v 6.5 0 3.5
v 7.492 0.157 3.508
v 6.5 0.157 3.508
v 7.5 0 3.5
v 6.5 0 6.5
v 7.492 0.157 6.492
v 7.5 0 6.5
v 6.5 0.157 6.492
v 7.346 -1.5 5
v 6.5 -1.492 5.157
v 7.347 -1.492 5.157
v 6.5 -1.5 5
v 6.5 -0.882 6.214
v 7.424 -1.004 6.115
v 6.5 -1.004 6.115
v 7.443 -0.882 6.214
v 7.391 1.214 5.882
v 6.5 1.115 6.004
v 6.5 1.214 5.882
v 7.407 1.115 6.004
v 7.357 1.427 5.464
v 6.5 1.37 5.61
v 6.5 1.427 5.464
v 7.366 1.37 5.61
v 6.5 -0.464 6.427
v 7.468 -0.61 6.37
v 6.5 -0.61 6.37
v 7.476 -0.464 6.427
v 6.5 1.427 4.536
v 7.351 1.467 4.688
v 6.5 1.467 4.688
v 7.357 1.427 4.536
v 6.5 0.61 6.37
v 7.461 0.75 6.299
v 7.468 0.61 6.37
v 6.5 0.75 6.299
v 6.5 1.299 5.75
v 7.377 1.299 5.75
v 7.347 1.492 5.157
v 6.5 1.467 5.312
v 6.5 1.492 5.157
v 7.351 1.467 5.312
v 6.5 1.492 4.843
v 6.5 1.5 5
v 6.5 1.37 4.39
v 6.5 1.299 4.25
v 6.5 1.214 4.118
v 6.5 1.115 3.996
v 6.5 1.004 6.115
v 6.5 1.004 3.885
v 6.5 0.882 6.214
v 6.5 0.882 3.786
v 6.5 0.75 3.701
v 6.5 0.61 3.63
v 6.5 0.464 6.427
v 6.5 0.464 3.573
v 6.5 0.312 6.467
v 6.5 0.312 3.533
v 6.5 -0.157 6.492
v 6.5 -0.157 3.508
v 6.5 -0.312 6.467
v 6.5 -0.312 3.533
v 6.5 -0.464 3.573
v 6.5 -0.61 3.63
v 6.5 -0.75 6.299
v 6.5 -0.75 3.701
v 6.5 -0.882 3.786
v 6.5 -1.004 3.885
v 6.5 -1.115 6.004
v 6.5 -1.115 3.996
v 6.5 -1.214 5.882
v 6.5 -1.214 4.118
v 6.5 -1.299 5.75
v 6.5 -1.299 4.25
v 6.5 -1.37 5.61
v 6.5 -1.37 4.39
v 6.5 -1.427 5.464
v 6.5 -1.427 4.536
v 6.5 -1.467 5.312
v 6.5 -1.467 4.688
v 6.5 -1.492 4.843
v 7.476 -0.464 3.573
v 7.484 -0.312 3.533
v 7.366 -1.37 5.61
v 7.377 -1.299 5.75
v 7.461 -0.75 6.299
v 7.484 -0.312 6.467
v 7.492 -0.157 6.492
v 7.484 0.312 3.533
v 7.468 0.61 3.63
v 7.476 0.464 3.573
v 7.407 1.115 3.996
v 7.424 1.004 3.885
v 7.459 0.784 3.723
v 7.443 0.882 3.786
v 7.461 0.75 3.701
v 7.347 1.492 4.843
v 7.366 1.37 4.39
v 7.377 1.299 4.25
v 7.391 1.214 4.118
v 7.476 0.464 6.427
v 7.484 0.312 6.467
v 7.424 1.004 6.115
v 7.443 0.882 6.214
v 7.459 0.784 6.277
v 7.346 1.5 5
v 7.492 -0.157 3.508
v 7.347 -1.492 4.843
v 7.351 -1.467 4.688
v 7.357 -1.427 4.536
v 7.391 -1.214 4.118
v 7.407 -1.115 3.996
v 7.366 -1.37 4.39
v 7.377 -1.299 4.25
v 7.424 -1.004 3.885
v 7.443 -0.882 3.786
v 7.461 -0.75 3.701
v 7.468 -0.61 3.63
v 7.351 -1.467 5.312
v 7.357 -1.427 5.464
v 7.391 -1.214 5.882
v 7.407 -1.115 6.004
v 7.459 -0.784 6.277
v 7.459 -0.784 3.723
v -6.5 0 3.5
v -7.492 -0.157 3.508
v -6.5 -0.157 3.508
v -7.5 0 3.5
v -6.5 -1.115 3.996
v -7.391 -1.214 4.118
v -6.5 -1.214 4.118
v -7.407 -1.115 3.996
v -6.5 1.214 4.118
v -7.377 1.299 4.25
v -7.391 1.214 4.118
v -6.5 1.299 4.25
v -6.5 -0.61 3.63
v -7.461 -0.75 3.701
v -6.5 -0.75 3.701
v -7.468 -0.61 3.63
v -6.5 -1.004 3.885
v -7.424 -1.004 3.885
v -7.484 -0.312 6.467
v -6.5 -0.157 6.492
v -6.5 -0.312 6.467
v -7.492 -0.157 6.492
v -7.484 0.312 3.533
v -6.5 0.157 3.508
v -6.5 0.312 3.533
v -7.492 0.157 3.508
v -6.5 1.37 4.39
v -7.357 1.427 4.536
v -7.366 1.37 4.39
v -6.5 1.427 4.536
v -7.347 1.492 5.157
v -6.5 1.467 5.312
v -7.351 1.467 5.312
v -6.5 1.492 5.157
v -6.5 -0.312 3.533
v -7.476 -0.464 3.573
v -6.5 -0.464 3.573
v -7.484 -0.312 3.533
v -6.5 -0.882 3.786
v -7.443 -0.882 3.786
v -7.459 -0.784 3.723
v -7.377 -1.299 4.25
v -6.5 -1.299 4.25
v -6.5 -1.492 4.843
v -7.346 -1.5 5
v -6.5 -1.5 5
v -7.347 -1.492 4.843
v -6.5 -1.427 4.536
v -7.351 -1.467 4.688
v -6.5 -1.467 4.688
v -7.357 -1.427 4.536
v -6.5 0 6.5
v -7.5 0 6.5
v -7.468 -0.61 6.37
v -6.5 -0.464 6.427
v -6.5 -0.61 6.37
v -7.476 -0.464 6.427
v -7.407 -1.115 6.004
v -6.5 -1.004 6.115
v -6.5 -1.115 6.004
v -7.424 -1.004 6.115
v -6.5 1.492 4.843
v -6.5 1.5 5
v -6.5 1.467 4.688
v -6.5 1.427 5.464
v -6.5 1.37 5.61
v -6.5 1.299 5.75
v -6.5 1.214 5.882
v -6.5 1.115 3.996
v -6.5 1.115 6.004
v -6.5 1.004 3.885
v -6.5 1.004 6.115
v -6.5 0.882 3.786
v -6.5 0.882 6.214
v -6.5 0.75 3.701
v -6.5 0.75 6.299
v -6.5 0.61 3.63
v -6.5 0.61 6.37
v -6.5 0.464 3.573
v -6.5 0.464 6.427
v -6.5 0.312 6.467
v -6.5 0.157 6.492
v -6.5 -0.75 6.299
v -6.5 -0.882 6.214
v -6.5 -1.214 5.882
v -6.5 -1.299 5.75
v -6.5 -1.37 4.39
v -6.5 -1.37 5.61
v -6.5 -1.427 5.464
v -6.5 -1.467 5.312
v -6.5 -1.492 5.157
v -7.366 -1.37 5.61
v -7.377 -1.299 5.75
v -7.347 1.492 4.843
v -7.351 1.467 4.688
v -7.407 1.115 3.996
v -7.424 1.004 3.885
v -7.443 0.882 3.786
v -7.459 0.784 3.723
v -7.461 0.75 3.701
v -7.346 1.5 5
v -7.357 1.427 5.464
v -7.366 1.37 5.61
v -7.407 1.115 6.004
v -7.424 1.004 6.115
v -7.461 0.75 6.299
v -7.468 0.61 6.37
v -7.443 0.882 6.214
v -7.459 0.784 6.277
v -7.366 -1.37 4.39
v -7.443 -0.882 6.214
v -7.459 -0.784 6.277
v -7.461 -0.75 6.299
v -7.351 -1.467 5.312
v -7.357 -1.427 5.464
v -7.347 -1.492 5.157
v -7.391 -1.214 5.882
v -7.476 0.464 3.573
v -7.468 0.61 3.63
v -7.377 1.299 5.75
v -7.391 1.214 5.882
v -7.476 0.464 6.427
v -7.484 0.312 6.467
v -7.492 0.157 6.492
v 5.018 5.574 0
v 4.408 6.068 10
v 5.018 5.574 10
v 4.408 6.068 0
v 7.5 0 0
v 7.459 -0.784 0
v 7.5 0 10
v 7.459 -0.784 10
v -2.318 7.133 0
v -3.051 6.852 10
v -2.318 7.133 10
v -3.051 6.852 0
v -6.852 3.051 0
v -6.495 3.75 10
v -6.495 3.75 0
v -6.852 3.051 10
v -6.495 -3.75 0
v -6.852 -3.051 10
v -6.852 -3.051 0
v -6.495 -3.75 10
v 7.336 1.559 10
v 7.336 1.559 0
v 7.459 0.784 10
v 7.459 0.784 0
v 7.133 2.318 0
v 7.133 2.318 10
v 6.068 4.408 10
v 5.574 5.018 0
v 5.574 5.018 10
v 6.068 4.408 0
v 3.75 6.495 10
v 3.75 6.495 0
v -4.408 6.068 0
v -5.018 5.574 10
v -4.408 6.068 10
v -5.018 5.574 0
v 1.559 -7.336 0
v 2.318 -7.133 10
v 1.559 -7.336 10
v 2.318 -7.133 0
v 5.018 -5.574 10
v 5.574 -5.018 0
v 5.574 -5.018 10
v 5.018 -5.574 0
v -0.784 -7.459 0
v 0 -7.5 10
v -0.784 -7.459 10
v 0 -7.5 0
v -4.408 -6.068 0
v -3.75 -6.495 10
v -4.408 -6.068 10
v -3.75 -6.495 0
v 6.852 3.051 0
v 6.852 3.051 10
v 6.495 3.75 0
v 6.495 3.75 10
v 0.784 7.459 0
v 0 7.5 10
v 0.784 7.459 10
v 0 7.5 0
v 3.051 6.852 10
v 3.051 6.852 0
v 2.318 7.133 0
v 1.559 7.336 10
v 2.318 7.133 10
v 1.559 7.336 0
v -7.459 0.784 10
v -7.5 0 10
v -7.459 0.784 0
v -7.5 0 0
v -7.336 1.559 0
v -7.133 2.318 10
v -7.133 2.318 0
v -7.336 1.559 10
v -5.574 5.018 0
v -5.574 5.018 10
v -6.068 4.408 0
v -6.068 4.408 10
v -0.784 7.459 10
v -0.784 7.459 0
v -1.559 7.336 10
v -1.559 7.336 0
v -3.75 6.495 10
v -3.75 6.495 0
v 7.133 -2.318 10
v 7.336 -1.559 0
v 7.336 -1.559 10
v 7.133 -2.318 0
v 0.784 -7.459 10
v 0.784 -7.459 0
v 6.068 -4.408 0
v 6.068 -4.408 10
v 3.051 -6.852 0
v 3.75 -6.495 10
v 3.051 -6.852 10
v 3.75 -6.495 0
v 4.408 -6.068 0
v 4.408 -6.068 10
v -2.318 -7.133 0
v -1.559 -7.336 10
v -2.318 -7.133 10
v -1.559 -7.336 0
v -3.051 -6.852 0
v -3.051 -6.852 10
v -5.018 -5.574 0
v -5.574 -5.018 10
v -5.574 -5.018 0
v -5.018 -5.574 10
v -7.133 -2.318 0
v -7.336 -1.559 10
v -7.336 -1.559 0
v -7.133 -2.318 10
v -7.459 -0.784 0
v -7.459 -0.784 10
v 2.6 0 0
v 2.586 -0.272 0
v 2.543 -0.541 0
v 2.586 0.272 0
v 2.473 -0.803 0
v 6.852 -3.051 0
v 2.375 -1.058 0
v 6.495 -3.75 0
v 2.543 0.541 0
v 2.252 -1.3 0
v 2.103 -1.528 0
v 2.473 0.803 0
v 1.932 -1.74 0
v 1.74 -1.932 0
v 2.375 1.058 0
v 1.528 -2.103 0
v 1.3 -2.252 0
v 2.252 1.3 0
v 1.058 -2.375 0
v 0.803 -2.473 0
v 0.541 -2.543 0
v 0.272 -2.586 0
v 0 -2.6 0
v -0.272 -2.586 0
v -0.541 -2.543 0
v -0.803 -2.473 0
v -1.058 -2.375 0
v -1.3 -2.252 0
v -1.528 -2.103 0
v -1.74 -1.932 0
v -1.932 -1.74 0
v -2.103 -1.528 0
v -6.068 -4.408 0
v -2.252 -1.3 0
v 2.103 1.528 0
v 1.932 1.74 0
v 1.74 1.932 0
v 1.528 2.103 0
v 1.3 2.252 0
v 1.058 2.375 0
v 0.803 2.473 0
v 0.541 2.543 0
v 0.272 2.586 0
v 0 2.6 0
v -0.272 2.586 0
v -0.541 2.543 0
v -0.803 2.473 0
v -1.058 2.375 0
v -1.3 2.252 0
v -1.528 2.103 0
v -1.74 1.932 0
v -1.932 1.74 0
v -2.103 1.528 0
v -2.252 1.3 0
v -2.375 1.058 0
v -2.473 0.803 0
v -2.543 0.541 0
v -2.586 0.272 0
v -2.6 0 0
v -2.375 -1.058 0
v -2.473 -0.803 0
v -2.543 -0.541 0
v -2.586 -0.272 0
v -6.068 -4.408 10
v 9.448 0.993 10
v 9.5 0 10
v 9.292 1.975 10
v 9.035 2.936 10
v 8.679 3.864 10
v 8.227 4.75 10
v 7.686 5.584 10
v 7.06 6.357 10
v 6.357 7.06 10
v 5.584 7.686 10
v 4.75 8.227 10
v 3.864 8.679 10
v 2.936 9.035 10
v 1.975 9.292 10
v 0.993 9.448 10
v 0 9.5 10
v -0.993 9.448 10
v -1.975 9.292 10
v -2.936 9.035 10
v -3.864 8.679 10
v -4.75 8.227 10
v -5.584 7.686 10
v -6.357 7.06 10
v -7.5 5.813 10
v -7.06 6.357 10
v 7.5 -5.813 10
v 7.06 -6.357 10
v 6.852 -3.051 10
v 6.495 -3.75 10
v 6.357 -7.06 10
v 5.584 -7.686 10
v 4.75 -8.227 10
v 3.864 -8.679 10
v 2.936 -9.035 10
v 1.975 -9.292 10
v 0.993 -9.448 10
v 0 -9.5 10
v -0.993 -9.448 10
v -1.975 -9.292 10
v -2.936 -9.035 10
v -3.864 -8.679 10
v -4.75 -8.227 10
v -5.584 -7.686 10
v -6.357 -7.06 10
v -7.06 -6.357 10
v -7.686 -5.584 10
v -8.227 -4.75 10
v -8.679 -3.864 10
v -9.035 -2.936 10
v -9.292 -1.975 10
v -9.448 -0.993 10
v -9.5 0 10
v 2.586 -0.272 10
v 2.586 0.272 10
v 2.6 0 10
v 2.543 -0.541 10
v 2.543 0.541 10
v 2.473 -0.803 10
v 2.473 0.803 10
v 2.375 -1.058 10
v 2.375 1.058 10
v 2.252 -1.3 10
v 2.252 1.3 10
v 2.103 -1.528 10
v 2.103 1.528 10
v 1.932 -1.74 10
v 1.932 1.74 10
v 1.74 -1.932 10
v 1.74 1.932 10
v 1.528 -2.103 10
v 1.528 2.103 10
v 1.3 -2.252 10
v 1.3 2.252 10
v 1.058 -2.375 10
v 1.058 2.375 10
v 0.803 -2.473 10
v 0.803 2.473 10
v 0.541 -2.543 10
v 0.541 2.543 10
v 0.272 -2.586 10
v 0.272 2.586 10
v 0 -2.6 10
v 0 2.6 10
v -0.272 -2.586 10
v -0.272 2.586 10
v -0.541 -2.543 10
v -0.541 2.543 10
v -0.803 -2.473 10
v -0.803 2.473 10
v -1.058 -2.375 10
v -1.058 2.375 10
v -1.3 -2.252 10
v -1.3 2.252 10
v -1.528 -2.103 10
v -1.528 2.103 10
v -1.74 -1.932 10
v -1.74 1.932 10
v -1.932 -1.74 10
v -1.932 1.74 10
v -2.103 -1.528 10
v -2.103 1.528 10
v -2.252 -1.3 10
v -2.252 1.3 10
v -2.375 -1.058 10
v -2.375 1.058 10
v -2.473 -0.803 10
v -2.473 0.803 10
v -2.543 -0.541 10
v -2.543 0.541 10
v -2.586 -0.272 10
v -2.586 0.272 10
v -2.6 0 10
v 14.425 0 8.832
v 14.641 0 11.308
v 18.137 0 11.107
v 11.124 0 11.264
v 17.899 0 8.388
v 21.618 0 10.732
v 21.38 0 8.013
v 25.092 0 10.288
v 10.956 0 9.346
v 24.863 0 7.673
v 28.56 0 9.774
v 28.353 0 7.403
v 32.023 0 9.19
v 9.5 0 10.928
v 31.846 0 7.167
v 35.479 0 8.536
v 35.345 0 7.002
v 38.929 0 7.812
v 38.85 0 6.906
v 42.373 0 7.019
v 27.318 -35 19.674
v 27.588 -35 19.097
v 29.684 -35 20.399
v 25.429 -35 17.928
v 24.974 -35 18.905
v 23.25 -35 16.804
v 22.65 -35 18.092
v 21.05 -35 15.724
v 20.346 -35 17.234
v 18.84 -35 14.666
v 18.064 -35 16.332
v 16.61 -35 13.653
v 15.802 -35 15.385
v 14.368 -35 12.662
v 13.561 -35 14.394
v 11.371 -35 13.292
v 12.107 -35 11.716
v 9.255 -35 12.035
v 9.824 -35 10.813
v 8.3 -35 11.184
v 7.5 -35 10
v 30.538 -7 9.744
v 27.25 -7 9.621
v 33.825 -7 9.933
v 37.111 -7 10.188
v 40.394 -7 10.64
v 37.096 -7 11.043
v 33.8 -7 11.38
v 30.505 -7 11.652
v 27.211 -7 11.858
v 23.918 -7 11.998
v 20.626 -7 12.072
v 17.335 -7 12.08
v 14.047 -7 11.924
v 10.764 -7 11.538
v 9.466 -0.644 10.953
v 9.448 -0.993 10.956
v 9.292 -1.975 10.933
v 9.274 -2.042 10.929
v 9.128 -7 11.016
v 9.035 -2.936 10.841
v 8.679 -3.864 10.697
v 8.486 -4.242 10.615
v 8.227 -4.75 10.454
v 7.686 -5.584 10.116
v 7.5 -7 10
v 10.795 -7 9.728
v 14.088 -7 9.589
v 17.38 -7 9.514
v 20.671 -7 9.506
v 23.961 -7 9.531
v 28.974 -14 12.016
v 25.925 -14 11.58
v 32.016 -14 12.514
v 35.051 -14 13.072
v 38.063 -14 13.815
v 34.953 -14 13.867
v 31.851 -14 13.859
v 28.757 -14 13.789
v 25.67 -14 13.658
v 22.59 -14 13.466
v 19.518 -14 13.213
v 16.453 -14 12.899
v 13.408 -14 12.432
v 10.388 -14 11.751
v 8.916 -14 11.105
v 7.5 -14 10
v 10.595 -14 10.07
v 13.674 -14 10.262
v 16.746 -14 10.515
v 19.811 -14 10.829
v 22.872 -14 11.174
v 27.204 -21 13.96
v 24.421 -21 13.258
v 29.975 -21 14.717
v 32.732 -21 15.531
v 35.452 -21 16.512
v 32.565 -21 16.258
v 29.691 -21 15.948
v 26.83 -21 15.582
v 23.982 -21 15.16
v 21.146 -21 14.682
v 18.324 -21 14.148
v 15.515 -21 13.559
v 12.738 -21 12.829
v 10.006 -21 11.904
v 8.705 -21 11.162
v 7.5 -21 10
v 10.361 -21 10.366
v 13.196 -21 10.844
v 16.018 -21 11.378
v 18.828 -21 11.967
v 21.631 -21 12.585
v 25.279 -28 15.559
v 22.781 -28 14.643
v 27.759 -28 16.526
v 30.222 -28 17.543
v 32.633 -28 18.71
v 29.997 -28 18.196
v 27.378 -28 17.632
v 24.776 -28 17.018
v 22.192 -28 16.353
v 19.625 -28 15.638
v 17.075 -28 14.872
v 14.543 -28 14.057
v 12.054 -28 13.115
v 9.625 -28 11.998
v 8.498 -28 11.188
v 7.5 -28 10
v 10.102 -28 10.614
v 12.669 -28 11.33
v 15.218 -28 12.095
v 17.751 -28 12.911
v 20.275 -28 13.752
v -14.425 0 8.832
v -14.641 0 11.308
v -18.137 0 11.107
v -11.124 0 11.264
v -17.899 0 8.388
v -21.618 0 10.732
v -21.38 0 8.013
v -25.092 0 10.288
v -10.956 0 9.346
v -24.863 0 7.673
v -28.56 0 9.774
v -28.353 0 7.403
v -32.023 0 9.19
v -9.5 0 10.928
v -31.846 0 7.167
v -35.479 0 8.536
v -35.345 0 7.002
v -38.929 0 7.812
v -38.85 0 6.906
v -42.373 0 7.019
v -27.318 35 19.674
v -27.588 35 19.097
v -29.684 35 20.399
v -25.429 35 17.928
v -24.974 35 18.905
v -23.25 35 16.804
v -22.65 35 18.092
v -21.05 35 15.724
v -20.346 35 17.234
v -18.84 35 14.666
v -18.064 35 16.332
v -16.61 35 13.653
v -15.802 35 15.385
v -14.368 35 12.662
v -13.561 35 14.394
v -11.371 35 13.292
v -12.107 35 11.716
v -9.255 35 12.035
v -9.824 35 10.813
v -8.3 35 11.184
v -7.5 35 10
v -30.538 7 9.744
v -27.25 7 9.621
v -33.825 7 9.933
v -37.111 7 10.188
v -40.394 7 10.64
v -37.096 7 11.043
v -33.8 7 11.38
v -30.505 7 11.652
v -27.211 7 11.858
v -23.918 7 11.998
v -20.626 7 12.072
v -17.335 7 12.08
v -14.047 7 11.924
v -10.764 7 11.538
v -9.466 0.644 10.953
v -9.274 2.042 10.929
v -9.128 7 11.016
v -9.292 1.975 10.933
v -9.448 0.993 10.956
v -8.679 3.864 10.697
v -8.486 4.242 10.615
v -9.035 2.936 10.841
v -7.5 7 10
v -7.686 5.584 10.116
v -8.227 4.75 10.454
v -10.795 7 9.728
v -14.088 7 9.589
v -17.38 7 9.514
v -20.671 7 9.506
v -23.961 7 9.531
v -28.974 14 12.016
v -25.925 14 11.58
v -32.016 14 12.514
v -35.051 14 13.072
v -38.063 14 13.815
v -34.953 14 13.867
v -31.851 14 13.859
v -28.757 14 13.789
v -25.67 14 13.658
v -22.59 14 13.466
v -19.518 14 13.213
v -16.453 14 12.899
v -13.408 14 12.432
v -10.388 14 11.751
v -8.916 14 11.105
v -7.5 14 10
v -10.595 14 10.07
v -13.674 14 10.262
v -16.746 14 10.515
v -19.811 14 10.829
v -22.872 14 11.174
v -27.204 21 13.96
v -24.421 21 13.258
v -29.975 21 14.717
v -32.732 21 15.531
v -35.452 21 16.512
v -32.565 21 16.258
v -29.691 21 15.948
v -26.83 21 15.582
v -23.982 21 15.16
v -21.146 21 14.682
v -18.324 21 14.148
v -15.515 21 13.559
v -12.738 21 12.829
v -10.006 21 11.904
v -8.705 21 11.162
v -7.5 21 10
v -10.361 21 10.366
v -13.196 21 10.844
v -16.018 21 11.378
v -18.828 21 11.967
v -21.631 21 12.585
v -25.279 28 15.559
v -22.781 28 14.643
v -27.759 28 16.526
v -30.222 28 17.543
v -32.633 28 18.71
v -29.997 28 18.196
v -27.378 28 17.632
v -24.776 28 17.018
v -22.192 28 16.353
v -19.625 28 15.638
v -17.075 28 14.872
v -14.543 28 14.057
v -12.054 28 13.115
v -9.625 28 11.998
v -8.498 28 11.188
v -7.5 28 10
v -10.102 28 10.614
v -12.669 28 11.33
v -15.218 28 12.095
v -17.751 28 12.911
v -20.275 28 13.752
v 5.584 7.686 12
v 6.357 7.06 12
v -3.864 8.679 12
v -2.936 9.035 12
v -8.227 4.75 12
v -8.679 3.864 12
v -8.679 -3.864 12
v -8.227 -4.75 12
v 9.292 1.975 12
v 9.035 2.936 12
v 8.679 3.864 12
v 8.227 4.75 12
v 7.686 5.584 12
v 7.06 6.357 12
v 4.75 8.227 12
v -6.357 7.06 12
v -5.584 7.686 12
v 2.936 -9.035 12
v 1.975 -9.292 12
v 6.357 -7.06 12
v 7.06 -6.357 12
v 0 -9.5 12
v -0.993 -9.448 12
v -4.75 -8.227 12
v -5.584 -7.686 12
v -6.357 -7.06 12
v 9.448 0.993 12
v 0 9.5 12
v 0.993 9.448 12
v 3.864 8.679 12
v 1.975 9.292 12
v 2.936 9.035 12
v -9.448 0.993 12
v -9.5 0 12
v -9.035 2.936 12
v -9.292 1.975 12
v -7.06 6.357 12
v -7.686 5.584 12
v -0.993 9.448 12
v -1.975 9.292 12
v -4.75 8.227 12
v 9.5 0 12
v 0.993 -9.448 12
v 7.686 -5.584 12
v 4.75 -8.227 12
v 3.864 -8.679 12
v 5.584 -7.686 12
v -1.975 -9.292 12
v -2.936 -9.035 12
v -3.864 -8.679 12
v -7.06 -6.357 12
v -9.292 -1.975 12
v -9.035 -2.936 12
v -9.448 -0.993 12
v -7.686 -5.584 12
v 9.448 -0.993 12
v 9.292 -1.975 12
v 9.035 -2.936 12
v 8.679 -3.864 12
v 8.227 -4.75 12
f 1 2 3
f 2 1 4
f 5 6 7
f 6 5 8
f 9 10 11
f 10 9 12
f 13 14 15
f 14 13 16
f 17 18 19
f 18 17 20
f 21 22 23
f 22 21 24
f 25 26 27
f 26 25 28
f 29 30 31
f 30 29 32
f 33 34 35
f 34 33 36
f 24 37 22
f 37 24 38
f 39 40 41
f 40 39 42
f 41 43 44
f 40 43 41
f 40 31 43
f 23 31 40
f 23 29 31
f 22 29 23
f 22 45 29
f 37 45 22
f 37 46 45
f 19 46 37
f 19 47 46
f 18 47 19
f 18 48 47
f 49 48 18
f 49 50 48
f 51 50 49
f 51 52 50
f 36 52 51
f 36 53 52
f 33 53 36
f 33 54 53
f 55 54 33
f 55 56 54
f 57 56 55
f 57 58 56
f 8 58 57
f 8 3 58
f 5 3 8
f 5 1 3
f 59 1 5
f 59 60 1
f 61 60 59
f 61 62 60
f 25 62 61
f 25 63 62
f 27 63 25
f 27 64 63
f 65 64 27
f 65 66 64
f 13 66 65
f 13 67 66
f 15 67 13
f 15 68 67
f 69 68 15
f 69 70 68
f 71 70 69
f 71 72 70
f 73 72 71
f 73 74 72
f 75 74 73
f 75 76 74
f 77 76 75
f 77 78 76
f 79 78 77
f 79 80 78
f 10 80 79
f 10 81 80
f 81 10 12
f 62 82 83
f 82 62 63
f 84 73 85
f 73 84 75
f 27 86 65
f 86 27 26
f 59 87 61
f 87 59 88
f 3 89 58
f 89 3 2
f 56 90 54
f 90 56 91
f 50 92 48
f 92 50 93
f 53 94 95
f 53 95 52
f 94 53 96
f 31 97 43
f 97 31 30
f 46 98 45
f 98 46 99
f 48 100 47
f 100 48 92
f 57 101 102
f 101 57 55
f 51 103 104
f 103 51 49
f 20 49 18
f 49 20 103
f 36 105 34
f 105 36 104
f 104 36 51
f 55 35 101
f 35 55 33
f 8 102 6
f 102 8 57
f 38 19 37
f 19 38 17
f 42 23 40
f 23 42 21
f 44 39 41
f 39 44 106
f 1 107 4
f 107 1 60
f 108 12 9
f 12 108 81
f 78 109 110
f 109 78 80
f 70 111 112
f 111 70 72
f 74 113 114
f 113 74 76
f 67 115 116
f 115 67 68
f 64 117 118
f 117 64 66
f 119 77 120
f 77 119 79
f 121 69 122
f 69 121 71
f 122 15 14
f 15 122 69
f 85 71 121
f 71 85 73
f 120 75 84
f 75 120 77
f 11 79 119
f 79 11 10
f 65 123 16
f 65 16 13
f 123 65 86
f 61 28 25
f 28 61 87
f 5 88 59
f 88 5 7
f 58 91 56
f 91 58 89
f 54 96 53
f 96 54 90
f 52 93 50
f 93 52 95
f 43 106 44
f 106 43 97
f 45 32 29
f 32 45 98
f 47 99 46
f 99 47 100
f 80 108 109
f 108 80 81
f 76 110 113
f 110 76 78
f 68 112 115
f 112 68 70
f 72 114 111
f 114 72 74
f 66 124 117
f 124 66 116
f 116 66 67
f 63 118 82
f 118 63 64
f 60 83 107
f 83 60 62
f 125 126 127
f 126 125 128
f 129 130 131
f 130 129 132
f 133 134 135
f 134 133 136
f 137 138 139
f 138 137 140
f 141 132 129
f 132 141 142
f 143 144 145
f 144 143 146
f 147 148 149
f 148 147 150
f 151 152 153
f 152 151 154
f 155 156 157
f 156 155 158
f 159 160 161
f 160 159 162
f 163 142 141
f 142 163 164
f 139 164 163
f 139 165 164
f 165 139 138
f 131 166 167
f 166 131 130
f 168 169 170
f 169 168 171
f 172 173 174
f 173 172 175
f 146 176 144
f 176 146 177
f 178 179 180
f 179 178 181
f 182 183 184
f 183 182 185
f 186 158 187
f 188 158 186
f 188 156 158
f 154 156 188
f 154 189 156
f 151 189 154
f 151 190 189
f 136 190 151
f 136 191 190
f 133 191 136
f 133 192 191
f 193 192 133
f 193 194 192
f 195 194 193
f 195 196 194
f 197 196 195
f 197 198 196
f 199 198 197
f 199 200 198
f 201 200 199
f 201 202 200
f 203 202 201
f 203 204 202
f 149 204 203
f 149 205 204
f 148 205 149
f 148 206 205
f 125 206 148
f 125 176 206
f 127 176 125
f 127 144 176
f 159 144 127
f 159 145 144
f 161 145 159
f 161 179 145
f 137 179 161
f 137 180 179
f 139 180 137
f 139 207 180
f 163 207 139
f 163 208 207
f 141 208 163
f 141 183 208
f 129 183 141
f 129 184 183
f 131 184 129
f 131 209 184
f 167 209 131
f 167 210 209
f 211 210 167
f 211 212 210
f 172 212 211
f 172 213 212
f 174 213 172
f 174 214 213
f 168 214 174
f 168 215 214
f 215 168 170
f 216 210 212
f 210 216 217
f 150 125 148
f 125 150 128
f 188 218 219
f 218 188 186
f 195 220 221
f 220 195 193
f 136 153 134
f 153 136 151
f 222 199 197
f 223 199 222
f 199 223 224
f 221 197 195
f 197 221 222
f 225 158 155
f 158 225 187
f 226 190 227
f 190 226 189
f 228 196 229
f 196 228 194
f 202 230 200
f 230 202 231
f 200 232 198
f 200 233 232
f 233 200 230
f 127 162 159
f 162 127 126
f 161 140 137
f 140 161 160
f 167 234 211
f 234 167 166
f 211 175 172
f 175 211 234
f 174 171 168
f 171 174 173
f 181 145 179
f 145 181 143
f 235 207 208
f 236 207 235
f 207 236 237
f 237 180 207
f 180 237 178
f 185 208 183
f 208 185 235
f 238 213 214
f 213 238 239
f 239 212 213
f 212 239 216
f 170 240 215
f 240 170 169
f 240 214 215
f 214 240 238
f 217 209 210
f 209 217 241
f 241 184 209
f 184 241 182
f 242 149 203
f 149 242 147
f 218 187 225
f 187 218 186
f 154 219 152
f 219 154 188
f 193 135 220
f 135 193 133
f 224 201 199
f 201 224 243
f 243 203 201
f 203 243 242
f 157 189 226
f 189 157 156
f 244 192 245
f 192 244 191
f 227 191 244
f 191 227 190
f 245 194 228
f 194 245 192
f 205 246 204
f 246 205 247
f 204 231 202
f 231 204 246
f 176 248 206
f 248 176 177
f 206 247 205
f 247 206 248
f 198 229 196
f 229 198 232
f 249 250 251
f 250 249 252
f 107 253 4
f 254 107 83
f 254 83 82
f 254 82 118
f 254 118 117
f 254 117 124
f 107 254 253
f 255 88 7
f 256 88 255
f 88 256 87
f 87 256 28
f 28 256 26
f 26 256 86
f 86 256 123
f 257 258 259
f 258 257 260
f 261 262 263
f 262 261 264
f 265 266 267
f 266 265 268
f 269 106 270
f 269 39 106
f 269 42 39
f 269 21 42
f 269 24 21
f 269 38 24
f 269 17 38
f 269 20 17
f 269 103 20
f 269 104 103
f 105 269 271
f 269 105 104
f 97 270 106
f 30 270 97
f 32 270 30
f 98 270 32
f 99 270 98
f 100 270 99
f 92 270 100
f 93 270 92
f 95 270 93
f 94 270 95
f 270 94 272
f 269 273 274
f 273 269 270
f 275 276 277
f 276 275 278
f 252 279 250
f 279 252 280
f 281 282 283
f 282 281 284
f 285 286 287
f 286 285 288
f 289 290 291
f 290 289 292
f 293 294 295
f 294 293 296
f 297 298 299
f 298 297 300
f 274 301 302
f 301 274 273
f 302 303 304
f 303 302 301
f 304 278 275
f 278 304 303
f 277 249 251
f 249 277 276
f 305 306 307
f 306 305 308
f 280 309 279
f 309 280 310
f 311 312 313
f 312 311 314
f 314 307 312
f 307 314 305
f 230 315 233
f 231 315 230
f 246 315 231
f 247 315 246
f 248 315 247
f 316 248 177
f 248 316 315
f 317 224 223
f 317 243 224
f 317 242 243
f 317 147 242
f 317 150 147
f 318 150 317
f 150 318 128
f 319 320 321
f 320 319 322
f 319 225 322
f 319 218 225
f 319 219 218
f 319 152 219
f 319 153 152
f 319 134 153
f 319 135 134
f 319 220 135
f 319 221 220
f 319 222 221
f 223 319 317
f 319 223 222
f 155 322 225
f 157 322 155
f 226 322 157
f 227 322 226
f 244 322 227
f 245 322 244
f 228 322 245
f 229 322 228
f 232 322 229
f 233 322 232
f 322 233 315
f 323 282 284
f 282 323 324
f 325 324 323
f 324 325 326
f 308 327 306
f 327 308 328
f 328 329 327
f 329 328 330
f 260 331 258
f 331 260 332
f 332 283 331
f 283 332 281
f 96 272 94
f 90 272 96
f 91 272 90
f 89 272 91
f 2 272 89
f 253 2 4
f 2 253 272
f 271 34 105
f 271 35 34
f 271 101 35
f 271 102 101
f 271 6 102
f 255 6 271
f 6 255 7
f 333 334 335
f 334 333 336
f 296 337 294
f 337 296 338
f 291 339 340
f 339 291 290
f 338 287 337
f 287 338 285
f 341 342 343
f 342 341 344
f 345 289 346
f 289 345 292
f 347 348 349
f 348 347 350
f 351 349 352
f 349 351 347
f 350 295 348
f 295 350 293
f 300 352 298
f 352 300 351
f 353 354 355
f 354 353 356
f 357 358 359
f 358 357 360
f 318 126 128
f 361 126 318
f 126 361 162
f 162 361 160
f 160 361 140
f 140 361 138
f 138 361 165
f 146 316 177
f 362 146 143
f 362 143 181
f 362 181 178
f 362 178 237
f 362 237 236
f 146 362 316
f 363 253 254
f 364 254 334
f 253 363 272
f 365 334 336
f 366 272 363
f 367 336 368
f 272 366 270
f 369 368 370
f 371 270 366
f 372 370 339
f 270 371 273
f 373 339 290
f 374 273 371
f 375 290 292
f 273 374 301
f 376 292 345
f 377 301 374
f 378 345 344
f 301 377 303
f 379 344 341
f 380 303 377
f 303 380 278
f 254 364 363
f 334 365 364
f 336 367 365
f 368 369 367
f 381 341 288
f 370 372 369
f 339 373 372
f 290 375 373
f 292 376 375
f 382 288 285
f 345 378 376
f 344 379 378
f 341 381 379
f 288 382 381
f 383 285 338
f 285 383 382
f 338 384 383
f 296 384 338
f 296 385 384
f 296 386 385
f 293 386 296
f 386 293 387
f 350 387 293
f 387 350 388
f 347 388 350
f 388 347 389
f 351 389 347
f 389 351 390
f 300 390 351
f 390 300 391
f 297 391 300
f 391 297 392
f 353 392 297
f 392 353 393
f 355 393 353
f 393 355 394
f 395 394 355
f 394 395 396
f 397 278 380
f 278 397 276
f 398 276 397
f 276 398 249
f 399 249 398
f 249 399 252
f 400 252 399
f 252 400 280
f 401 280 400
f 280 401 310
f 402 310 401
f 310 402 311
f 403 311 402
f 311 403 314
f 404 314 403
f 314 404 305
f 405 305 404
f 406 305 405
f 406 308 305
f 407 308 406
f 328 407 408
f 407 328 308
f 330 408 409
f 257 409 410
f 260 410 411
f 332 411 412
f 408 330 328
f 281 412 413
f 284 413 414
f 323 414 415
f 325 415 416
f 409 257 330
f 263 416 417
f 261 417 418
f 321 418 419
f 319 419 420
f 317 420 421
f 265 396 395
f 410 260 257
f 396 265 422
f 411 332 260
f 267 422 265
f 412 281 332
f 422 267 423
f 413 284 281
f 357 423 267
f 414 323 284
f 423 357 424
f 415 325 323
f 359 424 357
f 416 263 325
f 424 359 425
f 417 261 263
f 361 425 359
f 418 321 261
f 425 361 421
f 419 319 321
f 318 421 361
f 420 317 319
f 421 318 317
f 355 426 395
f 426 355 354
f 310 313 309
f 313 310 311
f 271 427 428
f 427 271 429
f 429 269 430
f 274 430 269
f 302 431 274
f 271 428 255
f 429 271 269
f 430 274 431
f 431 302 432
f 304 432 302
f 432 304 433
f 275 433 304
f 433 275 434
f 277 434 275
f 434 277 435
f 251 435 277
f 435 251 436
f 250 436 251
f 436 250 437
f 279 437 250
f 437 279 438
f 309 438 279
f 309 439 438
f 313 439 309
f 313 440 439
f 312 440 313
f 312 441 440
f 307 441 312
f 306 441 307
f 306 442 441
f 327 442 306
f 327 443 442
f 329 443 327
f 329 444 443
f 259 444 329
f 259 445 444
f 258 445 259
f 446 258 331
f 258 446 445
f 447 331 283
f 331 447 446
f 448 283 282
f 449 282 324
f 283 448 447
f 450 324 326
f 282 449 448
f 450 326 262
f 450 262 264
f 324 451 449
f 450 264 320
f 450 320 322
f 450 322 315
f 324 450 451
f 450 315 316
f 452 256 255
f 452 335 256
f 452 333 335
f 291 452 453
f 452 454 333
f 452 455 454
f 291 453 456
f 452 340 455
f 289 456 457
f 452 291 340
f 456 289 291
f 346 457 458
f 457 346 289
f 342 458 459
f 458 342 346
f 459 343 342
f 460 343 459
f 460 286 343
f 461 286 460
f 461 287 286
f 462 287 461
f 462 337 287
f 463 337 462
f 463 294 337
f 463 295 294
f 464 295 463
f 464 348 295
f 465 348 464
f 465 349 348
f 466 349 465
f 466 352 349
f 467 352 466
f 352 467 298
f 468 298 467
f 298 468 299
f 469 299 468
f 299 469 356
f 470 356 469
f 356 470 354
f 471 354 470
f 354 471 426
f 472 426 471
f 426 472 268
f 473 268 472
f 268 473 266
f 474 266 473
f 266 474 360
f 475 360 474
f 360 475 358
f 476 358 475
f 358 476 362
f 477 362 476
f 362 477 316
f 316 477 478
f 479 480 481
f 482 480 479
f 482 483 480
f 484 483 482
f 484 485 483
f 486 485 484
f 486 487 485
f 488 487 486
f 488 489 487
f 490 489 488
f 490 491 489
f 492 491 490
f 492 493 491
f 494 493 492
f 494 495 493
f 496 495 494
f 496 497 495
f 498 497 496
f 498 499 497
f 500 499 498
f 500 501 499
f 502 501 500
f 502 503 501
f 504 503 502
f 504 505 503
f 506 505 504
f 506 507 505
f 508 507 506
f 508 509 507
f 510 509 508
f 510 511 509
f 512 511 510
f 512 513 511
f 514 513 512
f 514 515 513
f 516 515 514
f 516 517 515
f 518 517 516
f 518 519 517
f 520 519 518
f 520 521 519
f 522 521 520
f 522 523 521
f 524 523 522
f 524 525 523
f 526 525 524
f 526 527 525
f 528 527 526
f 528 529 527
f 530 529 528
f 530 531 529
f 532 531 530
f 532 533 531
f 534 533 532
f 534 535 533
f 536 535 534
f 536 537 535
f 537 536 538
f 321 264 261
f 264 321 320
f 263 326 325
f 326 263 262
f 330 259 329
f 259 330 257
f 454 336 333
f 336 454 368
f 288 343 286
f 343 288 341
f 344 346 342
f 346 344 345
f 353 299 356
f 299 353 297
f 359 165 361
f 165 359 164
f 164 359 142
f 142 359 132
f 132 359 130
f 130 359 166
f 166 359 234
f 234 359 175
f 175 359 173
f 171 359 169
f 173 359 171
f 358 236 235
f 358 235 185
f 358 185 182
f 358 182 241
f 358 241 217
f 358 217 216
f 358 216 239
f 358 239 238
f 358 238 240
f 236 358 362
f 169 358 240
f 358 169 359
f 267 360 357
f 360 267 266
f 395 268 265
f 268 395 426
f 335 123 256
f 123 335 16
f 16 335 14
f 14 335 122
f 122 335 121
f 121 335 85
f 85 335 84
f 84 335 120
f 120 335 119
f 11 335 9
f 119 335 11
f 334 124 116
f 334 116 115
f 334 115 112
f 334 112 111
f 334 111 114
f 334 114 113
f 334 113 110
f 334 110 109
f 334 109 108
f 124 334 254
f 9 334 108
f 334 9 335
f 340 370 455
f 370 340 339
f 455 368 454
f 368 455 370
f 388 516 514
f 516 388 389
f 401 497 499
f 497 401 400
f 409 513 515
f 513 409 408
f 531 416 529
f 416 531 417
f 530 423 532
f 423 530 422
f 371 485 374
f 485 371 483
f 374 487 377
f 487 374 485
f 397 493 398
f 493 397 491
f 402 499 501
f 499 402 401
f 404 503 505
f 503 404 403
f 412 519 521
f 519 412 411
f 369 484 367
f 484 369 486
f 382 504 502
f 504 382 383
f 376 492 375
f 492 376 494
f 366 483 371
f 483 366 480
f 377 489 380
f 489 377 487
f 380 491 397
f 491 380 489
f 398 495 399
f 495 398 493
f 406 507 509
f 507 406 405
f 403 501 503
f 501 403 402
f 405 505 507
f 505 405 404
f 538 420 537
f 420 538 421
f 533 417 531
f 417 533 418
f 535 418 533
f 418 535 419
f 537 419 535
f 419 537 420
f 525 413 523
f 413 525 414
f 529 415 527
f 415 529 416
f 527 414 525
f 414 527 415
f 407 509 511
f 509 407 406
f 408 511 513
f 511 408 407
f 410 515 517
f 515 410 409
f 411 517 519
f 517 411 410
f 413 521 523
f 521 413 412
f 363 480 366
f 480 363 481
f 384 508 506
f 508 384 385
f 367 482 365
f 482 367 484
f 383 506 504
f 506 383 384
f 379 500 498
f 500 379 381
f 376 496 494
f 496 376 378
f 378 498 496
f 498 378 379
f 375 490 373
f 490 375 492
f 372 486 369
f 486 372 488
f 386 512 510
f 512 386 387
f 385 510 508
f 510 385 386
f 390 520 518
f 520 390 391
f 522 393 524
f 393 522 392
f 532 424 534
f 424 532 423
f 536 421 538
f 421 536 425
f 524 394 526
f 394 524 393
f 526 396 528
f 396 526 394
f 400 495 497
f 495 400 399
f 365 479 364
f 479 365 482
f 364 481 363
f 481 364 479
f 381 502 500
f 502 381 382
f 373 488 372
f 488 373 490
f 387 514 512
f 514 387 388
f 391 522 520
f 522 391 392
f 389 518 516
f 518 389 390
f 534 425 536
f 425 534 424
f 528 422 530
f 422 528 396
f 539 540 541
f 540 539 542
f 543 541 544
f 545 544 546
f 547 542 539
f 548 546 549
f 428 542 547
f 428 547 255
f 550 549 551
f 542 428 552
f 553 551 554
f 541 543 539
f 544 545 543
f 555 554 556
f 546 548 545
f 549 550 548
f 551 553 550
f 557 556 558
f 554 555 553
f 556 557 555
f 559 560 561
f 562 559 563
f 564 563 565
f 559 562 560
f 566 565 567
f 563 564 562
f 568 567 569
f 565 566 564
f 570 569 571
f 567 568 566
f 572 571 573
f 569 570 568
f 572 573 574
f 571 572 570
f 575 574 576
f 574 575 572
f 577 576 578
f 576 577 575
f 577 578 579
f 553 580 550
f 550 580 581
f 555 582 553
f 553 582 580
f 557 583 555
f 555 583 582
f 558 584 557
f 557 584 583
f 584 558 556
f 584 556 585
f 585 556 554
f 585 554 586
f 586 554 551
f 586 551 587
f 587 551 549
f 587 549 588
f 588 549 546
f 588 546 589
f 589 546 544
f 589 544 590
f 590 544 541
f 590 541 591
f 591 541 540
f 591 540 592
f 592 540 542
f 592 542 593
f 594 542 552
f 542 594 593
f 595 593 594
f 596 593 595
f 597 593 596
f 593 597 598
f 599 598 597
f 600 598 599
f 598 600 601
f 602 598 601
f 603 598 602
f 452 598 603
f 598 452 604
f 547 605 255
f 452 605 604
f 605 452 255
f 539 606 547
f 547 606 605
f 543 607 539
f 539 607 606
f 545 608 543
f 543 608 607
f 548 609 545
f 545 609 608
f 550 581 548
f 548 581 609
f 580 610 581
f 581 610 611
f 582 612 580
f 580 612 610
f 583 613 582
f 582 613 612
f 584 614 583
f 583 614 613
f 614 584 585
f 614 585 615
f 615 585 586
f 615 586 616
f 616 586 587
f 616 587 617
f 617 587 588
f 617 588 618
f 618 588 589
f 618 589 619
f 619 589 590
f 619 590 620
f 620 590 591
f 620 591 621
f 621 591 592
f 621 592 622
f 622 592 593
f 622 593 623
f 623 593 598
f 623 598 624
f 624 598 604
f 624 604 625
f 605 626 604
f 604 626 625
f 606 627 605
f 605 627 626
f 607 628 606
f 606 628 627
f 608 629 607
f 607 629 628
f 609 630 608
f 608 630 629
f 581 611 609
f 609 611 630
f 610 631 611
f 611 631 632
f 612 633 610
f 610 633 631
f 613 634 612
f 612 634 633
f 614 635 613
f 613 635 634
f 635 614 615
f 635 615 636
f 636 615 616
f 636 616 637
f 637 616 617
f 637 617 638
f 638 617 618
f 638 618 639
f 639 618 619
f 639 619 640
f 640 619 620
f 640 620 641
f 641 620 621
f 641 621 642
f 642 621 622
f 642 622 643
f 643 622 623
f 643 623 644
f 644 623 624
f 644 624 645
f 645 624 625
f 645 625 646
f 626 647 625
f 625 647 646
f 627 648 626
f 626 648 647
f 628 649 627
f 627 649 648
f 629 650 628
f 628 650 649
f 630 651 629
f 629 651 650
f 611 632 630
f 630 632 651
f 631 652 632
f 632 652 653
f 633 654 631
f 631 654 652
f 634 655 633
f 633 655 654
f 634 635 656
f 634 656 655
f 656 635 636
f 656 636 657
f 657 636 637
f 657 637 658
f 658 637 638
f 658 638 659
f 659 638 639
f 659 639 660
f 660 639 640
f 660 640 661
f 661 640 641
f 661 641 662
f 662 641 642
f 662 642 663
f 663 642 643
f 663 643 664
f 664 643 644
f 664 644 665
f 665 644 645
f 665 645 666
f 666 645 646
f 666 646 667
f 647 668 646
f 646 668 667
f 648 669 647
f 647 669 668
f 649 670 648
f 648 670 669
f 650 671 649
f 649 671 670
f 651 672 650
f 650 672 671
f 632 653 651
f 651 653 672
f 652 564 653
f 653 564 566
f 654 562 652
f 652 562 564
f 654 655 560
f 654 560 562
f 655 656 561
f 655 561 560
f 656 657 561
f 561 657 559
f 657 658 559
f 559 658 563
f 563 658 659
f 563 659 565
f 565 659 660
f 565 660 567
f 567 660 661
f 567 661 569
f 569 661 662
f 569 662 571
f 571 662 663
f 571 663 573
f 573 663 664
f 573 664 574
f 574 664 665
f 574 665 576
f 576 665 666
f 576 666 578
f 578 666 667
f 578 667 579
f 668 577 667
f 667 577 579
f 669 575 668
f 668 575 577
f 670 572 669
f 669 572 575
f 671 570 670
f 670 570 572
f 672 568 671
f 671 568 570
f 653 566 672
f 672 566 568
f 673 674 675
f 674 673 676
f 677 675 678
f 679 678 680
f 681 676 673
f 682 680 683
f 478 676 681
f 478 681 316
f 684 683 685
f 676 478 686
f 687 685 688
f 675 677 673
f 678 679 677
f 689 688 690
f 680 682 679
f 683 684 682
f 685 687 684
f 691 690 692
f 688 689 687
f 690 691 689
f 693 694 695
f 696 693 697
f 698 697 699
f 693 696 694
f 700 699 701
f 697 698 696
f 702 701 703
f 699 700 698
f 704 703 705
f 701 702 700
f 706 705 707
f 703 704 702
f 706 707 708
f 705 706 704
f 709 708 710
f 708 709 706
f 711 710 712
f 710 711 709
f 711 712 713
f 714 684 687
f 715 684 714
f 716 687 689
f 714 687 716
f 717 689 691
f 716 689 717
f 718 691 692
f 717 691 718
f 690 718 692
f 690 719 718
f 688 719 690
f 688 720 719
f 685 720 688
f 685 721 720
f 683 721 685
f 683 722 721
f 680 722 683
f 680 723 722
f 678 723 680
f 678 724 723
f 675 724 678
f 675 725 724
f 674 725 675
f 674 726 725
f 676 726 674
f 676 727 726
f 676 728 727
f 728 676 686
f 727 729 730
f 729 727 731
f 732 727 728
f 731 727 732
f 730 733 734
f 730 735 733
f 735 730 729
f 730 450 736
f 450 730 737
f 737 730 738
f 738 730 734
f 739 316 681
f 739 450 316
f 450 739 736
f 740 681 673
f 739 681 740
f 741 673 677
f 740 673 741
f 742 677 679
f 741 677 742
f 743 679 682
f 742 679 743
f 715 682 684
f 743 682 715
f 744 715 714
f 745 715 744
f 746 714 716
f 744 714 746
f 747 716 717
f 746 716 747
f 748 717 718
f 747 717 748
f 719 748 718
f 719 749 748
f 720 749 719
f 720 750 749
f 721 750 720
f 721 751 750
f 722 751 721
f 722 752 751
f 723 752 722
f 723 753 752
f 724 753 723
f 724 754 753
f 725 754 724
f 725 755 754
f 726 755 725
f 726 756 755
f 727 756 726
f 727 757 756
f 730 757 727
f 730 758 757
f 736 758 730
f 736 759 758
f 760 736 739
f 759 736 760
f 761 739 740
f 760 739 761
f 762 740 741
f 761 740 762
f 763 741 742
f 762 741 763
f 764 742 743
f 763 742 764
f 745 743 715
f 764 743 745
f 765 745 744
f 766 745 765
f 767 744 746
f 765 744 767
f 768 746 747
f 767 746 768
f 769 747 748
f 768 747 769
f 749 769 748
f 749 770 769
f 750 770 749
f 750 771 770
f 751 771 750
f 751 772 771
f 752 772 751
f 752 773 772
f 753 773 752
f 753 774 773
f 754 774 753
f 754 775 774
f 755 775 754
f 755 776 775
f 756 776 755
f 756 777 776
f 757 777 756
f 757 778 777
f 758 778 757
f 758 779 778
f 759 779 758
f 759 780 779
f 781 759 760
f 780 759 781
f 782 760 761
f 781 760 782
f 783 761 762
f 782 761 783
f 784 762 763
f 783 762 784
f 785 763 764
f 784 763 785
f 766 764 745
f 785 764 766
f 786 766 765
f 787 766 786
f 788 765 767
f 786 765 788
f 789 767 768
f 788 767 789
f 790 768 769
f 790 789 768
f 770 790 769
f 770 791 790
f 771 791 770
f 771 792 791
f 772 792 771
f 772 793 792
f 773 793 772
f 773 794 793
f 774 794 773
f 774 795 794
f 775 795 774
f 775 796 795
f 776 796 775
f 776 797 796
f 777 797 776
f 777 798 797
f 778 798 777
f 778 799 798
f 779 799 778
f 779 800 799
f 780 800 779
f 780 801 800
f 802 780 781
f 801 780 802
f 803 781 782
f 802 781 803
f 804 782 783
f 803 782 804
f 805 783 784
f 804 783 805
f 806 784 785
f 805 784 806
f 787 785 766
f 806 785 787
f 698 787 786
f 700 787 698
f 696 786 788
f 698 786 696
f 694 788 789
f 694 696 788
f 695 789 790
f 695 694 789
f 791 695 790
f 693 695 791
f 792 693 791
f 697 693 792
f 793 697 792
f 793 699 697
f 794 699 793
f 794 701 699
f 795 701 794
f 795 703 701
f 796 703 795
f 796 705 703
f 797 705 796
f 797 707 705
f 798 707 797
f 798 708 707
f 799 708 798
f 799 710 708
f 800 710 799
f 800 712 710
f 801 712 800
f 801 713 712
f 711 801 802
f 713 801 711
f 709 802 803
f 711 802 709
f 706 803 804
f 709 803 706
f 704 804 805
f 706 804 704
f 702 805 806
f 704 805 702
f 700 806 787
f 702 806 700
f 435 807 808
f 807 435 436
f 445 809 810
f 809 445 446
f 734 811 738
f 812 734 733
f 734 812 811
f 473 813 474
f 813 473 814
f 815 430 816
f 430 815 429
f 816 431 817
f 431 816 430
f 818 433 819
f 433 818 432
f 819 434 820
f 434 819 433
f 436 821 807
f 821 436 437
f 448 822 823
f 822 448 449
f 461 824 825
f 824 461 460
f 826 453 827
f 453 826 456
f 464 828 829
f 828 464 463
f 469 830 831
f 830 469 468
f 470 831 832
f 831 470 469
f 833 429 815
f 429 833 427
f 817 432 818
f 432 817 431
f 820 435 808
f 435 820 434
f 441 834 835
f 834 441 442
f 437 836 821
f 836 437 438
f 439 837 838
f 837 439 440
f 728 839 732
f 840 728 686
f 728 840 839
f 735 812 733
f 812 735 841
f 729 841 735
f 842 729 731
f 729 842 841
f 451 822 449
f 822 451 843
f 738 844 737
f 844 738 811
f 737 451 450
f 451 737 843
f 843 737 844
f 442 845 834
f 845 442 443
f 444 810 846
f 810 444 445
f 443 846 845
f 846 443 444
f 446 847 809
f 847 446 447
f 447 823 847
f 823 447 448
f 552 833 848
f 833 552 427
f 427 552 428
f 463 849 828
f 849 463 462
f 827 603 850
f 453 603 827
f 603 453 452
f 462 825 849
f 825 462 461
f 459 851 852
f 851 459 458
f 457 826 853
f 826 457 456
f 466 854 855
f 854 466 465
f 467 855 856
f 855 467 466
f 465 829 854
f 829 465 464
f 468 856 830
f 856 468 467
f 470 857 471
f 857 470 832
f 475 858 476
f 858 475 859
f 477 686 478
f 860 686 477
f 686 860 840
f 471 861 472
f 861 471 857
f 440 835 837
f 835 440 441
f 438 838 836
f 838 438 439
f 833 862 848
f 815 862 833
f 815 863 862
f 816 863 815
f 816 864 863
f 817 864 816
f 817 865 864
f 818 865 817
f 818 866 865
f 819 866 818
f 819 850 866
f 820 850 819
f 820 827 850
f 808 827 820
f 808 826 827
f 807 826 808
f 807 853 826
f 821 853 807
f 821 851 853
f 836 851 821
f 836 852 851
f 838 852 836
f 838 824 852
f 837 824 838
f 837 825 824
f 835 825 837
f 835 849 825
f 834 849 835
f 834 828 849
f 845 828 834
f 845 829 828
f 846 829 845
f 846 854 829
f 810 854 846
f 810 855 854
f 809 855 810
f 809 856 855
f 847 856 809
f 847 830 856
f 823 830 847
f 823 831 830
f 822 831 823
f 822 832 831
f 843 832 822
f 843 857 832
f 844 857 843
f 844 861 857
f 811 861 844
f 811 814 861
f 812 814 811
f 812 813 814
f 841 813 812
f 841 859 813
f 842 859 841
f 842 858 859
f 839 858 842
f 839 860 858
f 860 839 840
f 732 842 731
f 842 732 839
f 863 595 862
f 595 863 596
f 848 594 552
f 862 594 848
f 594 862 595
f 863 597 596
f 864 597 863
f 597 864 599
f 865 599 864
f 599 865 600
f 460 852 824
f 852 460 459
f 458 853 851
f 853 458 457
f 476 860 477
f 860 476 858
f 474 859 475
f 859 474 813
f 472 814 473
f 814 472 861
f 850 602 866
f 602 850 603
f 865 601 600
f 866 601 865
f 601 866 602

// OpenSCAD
/*
 * COMPLETE MOTOR + IMPELLER ASSEMBLY
 * For CFD fluid testing and visualization
 * 
 * This model includes:
 *   - Brushless motor (2204-2206 size)
 *   - Motor shaft (5mm)
 *   - Impeller hub
 *   - 3 impeller variants (bladeless, AI-blades, hybrid)
 *   - Mounting plate
 * 
 * Usage:
 *   - Render full assembly: F6
 *   - Export for CFD: Set EXPORT_MODE = "impeller_only"
 *   - Change design: Set IMPELLER_TYPE = "bladeless" | "bladed" | "hybrid"
 */

// ============================================================================
// CONFIGURATION PARAMETERS (AI-Optimizable)
// ============================================================================

// General Settings
$fn = 60;  // Resolution for CFD export (increase to 100 for final)

// Export Mode
EXPORT_MODE = "impeller_only";  // Options: "full_assembly", "impeller_only", "motor_only"

// Impeller Type
IMPELLER_TYPE = "bladed";  // Options: "bladeless", "bladed", "hybrid"

// Motor Specifications (2204-2206 brushless)
MOTOR_DIAMETER = 28;         // mm
MOTOR_HEIGHT = 25;           // mm
MOTOR_SHAFT_DIAMETER = 5;    // mm (standard)
MOTOR_SHAFT_LENGTH = 15;     // mm (extends above motor)
MOTOR_MOUNT_PATTERN = 16;    // mm (16x16 or 19x19 common)
MOTOR_SCREW_DIAMETER = 3;    // M3 screws

// Impeller Parameters - BLADELESS
BLADELESS_OUTER_DIAMETER = 90;    // mm
BLADELESS_AIR_GAP = 0.8;          // mm (optimize: 0.6-1.2)
BLADELESS_THROAT_RATIO = 0.72;    // (optimize: 0.65-0.80)
BLADELESS_EXPANSION_ANGLE = 18;   // degrees (optimize: 12-25)
BLADELESS_RING_THICKNESS = 3;     // mm (optimize: 2-4)
BLADELESS_HEIGHT = 24;            // mm

// Impeller Parameters - BLADED
BLADED_DIAMETER = 85;
BLADED_HUB_DIAMETER = 15;         // mm (optimize: 12-20)
BLADED_BLADE_COUNT = 2;
BLADED_ROOT_CHORD = 35;
BLADED_TIP_CHORD_RATIO = 0.7;    // (optimize: 0.6-0.8)
BLADED_BLADE_THICKNESS = 2;       // mm (optimize: 1.5-3)
BLADED_BLADE_TWIST = -30;
BLADED_ATTACK_ANGLE = -5;
BLADED_BLADE_HEIGHT = 12;         // mm (optimize: 10-15)

// Hub Parameters
HUB_DIAMETER = 15;
HUB_HEIGHT = 10;
HUB_SET_SCREW_DIAMETER = 3;  // M3 set screw

// Mounting Plate
PLATE_SIZE = 50;
PLATE_THICKNESS = 3;

// ============================================================================
// MOTOR MODEL
// ============================================================================

module brushless_motor_2204() {
    color("DarkSlateGray") {
        // Motor can (bell)
        difference() {
            cylinder(h=MOTOR_HEIGHT, d=MOTOR_DIAMETER);
            
            // Hollow inside (weight reduction visualization)
            translate([0, 0, -0.5])
                cylinder(h=MOTOR_HEIGHT - 5, d=MOTOR_DIAMETER - 4);
            
            // Mounting holes
            for(i = [0:3]) {
                rotate([0, 0, i * 90])
                    translate([MOTOR_MOUNT_PATTERN/2, 0, MOTOR_HEIGHT/2])
                        rotate([90, 0, 0])
                            cylinder(h=MOTOR_DIAMETER, d=MOTOR_SCREW_DIAMETER, center=true);
            }
        }
        
        // Motor base
        translate([0, 0, -3])
            cylinder(h=3, d=MOTOR_DIAMETER - 2);
    }
    
    // Motor shaft
    color("Silver")
        translate([0, 0, MOTOR_HEIGHT])
            cylinder(h=MOTOR_SHAFT_LENGTH, d=MOTOR_SHAFT_DIAMETER);
    
    // Shaft tip (for hub attachment)
    color("Silver")
        translate([0, 0, MOTOR_HEIGHT + MOTOR_SHAFT_LENGTH])
            cylinder(h=2, d=MOTOR_SHAFT_DIAMETER - 0.5);
}

// ============================================================================
// IMPELLER HUB
// ============================================================================

module impeller_hub() {
    color("Gray")
    difference() {
        // Hub body
        cylinder(h=HUB_HEIGHT, d=HUB_DIAMETER);
        
        // Shaft hole (5mm + 0.2mm clearance)
        translate([0, 0, -0.5])
            cylinder(h=HUB_HEIGHT + 1, d=MOTOR_SHAFT_DIAMETER + 0.2);
        
        // Set screw holes (2x for balance)
        for(i = [0:1]) {
            rotate([0, 0, i * 180])
                translate([HUB_DIAMETER/2 - 1, 0, HUB_HEIGHT/2])
                    rotate([0, 90, 0])
                        cylinder(h=5, d=HUB_SET_SCREW_DIAMETER);
        }
    }
}

// ============================================================================
// BLADELESS IMPELLER (Dyson-style)
// ============================================================================

module bladeless_impeller() {
    outer_r = BLADELESS_OUTER_DIAMETER / 2;
    throat_r = outer_r * BLADELESS_THROAT_RATIO;
    gap = BLADELESS_AIR_GAP;
    
    color("SkyBlue", 0.7)
    difference() {
        // Outer ring
        rotate_extrude()
            translate([outer_r - BLADELESS_RING_THICKNESS/2, BLADELESS_HEIGHT/2, 0])
                circle(d=BLADELESS_RING_THICKNESS + BLADELESS_HEIGHT);
        
        // Inner air gap (critical for Coanda effect)
        rotate_extrude()
            translate([outer_r - gap - BLADELESS_RING_THICKNESS/2, BLADELESS_HEIGHT/2, 0])
                circle(d=BLADELESS_RING_THICKNESS + BLADELESS_HEIGHT - 2*gap);
    }
    
    // Base plate (connects to hub)
    color("SkyBlue", 0.7)
    translate([0, 0, -2])
        difference() {
            cylinder(h=2, d=outer_r * 2);
            translate([0, 0, -0.5])
                cylinder(h=3, d=HUB_DIAMETER + 1);
        }
    
    // Air inlet (bell-shaped for smooth flow)
    color("SkyBlue", 0.7)
    translate([0, 0, -2]) {
        difference() {
            cylinder(h=15, d1=throat_r * 2, d2=outer_r * 1.8);
            translate([0, 0, -0.5])
                cylinder(h=16, d1=throat_r * 2 - 3, d2=outer_r * 1.8 - 3);
        }
    }
}

// ============================================================================
// AI-OPTIMIZED BLADED IMPELLER (NACA 2412 profile)
// ============================================================================

module naca_2412_blade(chord, height, twist_angle, attack_angle) {
    // Simplified NACA 2412 airfoil profile
    // Using parametric approximation for 3D printing
    
    color("LightSteelBlue", 0.8)
    linear_extrude(height=height, twist=twist_angle, scale=BLADED_TIP_CHORD_RATIO) {
        rotate([0, 0, attack_angle])
        polygon([
            // Upper surface (cambered)
            [0, 0],
            [chord * 0.05, chord * 0.03],
            [chord * 0.1, chord * 0.045],
            [chord * 0.2, chord * 0.055],
            [chord * 0.3, chord * 0.058],
            [chord * 0.4, chord * 0.056],
            [chord * 0.5, chord * 0.052],
            [chord * 0.6, chord * 0.046],
            [chord * 0.7, chord * 0.038],
            [chord * 0.8, chord * 0.028],
            [chord * 0.9, chord * 0.016],
            [chord * 1.0, chord * 0.002],
            // Lower surface (less cambered)
            [chord * 0.9, -chord * 0.010],
            [chord * 0.8, -chord * 0.016],
            [chord * 0.7, -chord * 0.020],
            [chord * 0.6, -chord * 0.022],
            [chord * 0.5, -chord * 0.023],
            [chord * 0.4, -chord * 0.022],
            [chord * 0.3, -chord * 0.020],
            [chord * 0.2, -chord * 0.016],
            [chord * 0.1, -chord * 0.010],
            [chord * 0.05, -chord * 0.005],
        ]);
    }
}

module bladed_impeller() {
    // Blades
    for(i = [0 : BLADED_BLADE_COUNT - 1]) {
        rotate([0, 0, i * (360 / BLADED_BLADE_COUNT)])
            translate([BLADED_HUB_DIAMETER/2, 0, 0])
                rotate([90, 0, 0])
                    naca_2412_blade(
                        BLADED_ROOT_CHORD, 
                        (BLADED_DIAMETER - BLADED_HUB_DIAMETER) / 2,
                        BLADED_BLADE_TWIST,
                        BLADED_ATTACK_ANGLE
                    );
    }
    
    // Hub disk (connects blades)
    color("LightSteelBlue", 0.8)
    cylinder(h=2, d=BLADED_HUB_DIAMETER + 4);
}

// ============================================================================
// HYBRID IMPELLER (Blades inside bladeless ring)
// ============================================================================

module hybrid_impeller() {
    // Outer bladeless ring
    bladeless_impeller();
    
    // Inner bladed impeller (scaled down to fit)
    scale([0.85, 0.85, 1])
        bladed_impeller();
}

// ============================================================================
// MOUNTING PLATE
// ============================================================================

module mounting_plate() {
    color("DimGray")
    difference() {
        // Base plate
        translate([-PLATE_SIZE/2, -PLATE_SIZE/2, 0])
            cube([PLATE_SIZE, PLATE_SIZE, PLATE_THICKNESS]);
        
        // Center hole for motor shaft
        translate([0, 0, -0.5])
            cylinder(h=PLATE_THICKNESS + 1, d=MOTOR_DIAMETER + 2);
        
        // Motor mounting holes
        for(i = [0:3]) {
            rotate([0, 0, i * 90])
                translate([MOTOR_MOUNT_PATTERN/2, 0, -0.5])
                    cylinder(h=PLATE_THICKNESS + 1, d=MOTOR_SCREW_DIAMETER);
        }
    }
}

// ============================================================================
// COMPLETE ASSEMBLY
// ============================================================================

module complete_assembly() {
    // Mounting plate (bottom)
    translate([0, 0, -PLATE_THICKNESS])
        mounting_plate();
    
    // Motor
    translate([0, 0, 0])
        brushless_motor_2204();
    
    // Hub (on shaft)
    translate([0, 0, MOTOR_HEIGHT + MOTOR_SHAFT_LENGTH - 2])
        impeller_hub();
    
    // Impeller (on hub)
    translate([0, 0, MOTOR_HEIGHT + MOTOR_SHAFT_LENGTH + HUB_HEIGHT]) {
        if (IMPELLER_TYPE == "bladeless") {
            bladeless_impeller();
        } else if (IMPELLER_TYPE == "bladed") {
            bladed_impeller();
        } else if (IMPELLER_TYPE == "hybrid") {
            hybrid_impeller();
        }
    }
}

// ============================================================================
// RENDER BASED ON EXPORT MODE
// ============================================================================

if (EXPORT_MODE == "full_assembly") {
    complete_assembly();
} 
else if (EXPORT_MODE == "impeller_only") {
    // For CFD testing - impeller + hub only
    impeller_hub();
    translate([0, 0, HUB_HEIGHT]) {
        if (IMPELLER_TYPE == "bladeless") {
            bladeless_impeller();
        } else if (IMPELLER_TYPE == "bladed") {
            bladed_impeller();
        } else if (IMPELLER_TYPE == "hybrid") {
            hybrid_impeller();
        }
    }
}
else if (EXPORT_MODE == "motor_only") {
    brushless_motor_2204();
}

// ============================================================================
// ANNOTATIONS FOR VISUALIZATION
// ============================================================================

// Uncomment to show dimensions
/*
color("Red", 0.3)
translate([BLADED_DIAMETER/2 + 10, 0, 20])
    text(str("Ø", BLADED_DIAMETER, "mm"), size=5, halign="left");

color("Green", 0.3)
translate([0, BLADED_DIAMETER/2 + 10, 20])
    text(str(BLADED_BLADE_COUNT, " blades"), size=5, halign="center");
*/

// ============================================================================
// EXPORT NOTES
// ============================================================================

/*
 * TO EXPORT FOR CFD TESTING:
 * 
 * 1. Set EXPORT_MODE = "impeller_only"
 * 2. Set IMPELLER_TYPE = "bladeless" (or "bladed" or "hybrid")
 * 3. Press F6 to render
 * 4. File → Export → Export as STL
 * 5. Use filename: impeller_bladeless_fn60.stl
 * 
 * FOR OPTIMIZATION:
 * - Modify parameters at top (marked with "optimize:")
 * - Re-render and export
 * - Upload to SimScale for CFD
 * - Compare results
 * 
 * RECOMMENDED CFD SETTINGS:
 * - Solver: k-omega SST
 * - RPM: 5000, 7000, 9000
 * - Mesh: 3-5M cells
 * - Boundary: Rotating zone on impeller
 */
